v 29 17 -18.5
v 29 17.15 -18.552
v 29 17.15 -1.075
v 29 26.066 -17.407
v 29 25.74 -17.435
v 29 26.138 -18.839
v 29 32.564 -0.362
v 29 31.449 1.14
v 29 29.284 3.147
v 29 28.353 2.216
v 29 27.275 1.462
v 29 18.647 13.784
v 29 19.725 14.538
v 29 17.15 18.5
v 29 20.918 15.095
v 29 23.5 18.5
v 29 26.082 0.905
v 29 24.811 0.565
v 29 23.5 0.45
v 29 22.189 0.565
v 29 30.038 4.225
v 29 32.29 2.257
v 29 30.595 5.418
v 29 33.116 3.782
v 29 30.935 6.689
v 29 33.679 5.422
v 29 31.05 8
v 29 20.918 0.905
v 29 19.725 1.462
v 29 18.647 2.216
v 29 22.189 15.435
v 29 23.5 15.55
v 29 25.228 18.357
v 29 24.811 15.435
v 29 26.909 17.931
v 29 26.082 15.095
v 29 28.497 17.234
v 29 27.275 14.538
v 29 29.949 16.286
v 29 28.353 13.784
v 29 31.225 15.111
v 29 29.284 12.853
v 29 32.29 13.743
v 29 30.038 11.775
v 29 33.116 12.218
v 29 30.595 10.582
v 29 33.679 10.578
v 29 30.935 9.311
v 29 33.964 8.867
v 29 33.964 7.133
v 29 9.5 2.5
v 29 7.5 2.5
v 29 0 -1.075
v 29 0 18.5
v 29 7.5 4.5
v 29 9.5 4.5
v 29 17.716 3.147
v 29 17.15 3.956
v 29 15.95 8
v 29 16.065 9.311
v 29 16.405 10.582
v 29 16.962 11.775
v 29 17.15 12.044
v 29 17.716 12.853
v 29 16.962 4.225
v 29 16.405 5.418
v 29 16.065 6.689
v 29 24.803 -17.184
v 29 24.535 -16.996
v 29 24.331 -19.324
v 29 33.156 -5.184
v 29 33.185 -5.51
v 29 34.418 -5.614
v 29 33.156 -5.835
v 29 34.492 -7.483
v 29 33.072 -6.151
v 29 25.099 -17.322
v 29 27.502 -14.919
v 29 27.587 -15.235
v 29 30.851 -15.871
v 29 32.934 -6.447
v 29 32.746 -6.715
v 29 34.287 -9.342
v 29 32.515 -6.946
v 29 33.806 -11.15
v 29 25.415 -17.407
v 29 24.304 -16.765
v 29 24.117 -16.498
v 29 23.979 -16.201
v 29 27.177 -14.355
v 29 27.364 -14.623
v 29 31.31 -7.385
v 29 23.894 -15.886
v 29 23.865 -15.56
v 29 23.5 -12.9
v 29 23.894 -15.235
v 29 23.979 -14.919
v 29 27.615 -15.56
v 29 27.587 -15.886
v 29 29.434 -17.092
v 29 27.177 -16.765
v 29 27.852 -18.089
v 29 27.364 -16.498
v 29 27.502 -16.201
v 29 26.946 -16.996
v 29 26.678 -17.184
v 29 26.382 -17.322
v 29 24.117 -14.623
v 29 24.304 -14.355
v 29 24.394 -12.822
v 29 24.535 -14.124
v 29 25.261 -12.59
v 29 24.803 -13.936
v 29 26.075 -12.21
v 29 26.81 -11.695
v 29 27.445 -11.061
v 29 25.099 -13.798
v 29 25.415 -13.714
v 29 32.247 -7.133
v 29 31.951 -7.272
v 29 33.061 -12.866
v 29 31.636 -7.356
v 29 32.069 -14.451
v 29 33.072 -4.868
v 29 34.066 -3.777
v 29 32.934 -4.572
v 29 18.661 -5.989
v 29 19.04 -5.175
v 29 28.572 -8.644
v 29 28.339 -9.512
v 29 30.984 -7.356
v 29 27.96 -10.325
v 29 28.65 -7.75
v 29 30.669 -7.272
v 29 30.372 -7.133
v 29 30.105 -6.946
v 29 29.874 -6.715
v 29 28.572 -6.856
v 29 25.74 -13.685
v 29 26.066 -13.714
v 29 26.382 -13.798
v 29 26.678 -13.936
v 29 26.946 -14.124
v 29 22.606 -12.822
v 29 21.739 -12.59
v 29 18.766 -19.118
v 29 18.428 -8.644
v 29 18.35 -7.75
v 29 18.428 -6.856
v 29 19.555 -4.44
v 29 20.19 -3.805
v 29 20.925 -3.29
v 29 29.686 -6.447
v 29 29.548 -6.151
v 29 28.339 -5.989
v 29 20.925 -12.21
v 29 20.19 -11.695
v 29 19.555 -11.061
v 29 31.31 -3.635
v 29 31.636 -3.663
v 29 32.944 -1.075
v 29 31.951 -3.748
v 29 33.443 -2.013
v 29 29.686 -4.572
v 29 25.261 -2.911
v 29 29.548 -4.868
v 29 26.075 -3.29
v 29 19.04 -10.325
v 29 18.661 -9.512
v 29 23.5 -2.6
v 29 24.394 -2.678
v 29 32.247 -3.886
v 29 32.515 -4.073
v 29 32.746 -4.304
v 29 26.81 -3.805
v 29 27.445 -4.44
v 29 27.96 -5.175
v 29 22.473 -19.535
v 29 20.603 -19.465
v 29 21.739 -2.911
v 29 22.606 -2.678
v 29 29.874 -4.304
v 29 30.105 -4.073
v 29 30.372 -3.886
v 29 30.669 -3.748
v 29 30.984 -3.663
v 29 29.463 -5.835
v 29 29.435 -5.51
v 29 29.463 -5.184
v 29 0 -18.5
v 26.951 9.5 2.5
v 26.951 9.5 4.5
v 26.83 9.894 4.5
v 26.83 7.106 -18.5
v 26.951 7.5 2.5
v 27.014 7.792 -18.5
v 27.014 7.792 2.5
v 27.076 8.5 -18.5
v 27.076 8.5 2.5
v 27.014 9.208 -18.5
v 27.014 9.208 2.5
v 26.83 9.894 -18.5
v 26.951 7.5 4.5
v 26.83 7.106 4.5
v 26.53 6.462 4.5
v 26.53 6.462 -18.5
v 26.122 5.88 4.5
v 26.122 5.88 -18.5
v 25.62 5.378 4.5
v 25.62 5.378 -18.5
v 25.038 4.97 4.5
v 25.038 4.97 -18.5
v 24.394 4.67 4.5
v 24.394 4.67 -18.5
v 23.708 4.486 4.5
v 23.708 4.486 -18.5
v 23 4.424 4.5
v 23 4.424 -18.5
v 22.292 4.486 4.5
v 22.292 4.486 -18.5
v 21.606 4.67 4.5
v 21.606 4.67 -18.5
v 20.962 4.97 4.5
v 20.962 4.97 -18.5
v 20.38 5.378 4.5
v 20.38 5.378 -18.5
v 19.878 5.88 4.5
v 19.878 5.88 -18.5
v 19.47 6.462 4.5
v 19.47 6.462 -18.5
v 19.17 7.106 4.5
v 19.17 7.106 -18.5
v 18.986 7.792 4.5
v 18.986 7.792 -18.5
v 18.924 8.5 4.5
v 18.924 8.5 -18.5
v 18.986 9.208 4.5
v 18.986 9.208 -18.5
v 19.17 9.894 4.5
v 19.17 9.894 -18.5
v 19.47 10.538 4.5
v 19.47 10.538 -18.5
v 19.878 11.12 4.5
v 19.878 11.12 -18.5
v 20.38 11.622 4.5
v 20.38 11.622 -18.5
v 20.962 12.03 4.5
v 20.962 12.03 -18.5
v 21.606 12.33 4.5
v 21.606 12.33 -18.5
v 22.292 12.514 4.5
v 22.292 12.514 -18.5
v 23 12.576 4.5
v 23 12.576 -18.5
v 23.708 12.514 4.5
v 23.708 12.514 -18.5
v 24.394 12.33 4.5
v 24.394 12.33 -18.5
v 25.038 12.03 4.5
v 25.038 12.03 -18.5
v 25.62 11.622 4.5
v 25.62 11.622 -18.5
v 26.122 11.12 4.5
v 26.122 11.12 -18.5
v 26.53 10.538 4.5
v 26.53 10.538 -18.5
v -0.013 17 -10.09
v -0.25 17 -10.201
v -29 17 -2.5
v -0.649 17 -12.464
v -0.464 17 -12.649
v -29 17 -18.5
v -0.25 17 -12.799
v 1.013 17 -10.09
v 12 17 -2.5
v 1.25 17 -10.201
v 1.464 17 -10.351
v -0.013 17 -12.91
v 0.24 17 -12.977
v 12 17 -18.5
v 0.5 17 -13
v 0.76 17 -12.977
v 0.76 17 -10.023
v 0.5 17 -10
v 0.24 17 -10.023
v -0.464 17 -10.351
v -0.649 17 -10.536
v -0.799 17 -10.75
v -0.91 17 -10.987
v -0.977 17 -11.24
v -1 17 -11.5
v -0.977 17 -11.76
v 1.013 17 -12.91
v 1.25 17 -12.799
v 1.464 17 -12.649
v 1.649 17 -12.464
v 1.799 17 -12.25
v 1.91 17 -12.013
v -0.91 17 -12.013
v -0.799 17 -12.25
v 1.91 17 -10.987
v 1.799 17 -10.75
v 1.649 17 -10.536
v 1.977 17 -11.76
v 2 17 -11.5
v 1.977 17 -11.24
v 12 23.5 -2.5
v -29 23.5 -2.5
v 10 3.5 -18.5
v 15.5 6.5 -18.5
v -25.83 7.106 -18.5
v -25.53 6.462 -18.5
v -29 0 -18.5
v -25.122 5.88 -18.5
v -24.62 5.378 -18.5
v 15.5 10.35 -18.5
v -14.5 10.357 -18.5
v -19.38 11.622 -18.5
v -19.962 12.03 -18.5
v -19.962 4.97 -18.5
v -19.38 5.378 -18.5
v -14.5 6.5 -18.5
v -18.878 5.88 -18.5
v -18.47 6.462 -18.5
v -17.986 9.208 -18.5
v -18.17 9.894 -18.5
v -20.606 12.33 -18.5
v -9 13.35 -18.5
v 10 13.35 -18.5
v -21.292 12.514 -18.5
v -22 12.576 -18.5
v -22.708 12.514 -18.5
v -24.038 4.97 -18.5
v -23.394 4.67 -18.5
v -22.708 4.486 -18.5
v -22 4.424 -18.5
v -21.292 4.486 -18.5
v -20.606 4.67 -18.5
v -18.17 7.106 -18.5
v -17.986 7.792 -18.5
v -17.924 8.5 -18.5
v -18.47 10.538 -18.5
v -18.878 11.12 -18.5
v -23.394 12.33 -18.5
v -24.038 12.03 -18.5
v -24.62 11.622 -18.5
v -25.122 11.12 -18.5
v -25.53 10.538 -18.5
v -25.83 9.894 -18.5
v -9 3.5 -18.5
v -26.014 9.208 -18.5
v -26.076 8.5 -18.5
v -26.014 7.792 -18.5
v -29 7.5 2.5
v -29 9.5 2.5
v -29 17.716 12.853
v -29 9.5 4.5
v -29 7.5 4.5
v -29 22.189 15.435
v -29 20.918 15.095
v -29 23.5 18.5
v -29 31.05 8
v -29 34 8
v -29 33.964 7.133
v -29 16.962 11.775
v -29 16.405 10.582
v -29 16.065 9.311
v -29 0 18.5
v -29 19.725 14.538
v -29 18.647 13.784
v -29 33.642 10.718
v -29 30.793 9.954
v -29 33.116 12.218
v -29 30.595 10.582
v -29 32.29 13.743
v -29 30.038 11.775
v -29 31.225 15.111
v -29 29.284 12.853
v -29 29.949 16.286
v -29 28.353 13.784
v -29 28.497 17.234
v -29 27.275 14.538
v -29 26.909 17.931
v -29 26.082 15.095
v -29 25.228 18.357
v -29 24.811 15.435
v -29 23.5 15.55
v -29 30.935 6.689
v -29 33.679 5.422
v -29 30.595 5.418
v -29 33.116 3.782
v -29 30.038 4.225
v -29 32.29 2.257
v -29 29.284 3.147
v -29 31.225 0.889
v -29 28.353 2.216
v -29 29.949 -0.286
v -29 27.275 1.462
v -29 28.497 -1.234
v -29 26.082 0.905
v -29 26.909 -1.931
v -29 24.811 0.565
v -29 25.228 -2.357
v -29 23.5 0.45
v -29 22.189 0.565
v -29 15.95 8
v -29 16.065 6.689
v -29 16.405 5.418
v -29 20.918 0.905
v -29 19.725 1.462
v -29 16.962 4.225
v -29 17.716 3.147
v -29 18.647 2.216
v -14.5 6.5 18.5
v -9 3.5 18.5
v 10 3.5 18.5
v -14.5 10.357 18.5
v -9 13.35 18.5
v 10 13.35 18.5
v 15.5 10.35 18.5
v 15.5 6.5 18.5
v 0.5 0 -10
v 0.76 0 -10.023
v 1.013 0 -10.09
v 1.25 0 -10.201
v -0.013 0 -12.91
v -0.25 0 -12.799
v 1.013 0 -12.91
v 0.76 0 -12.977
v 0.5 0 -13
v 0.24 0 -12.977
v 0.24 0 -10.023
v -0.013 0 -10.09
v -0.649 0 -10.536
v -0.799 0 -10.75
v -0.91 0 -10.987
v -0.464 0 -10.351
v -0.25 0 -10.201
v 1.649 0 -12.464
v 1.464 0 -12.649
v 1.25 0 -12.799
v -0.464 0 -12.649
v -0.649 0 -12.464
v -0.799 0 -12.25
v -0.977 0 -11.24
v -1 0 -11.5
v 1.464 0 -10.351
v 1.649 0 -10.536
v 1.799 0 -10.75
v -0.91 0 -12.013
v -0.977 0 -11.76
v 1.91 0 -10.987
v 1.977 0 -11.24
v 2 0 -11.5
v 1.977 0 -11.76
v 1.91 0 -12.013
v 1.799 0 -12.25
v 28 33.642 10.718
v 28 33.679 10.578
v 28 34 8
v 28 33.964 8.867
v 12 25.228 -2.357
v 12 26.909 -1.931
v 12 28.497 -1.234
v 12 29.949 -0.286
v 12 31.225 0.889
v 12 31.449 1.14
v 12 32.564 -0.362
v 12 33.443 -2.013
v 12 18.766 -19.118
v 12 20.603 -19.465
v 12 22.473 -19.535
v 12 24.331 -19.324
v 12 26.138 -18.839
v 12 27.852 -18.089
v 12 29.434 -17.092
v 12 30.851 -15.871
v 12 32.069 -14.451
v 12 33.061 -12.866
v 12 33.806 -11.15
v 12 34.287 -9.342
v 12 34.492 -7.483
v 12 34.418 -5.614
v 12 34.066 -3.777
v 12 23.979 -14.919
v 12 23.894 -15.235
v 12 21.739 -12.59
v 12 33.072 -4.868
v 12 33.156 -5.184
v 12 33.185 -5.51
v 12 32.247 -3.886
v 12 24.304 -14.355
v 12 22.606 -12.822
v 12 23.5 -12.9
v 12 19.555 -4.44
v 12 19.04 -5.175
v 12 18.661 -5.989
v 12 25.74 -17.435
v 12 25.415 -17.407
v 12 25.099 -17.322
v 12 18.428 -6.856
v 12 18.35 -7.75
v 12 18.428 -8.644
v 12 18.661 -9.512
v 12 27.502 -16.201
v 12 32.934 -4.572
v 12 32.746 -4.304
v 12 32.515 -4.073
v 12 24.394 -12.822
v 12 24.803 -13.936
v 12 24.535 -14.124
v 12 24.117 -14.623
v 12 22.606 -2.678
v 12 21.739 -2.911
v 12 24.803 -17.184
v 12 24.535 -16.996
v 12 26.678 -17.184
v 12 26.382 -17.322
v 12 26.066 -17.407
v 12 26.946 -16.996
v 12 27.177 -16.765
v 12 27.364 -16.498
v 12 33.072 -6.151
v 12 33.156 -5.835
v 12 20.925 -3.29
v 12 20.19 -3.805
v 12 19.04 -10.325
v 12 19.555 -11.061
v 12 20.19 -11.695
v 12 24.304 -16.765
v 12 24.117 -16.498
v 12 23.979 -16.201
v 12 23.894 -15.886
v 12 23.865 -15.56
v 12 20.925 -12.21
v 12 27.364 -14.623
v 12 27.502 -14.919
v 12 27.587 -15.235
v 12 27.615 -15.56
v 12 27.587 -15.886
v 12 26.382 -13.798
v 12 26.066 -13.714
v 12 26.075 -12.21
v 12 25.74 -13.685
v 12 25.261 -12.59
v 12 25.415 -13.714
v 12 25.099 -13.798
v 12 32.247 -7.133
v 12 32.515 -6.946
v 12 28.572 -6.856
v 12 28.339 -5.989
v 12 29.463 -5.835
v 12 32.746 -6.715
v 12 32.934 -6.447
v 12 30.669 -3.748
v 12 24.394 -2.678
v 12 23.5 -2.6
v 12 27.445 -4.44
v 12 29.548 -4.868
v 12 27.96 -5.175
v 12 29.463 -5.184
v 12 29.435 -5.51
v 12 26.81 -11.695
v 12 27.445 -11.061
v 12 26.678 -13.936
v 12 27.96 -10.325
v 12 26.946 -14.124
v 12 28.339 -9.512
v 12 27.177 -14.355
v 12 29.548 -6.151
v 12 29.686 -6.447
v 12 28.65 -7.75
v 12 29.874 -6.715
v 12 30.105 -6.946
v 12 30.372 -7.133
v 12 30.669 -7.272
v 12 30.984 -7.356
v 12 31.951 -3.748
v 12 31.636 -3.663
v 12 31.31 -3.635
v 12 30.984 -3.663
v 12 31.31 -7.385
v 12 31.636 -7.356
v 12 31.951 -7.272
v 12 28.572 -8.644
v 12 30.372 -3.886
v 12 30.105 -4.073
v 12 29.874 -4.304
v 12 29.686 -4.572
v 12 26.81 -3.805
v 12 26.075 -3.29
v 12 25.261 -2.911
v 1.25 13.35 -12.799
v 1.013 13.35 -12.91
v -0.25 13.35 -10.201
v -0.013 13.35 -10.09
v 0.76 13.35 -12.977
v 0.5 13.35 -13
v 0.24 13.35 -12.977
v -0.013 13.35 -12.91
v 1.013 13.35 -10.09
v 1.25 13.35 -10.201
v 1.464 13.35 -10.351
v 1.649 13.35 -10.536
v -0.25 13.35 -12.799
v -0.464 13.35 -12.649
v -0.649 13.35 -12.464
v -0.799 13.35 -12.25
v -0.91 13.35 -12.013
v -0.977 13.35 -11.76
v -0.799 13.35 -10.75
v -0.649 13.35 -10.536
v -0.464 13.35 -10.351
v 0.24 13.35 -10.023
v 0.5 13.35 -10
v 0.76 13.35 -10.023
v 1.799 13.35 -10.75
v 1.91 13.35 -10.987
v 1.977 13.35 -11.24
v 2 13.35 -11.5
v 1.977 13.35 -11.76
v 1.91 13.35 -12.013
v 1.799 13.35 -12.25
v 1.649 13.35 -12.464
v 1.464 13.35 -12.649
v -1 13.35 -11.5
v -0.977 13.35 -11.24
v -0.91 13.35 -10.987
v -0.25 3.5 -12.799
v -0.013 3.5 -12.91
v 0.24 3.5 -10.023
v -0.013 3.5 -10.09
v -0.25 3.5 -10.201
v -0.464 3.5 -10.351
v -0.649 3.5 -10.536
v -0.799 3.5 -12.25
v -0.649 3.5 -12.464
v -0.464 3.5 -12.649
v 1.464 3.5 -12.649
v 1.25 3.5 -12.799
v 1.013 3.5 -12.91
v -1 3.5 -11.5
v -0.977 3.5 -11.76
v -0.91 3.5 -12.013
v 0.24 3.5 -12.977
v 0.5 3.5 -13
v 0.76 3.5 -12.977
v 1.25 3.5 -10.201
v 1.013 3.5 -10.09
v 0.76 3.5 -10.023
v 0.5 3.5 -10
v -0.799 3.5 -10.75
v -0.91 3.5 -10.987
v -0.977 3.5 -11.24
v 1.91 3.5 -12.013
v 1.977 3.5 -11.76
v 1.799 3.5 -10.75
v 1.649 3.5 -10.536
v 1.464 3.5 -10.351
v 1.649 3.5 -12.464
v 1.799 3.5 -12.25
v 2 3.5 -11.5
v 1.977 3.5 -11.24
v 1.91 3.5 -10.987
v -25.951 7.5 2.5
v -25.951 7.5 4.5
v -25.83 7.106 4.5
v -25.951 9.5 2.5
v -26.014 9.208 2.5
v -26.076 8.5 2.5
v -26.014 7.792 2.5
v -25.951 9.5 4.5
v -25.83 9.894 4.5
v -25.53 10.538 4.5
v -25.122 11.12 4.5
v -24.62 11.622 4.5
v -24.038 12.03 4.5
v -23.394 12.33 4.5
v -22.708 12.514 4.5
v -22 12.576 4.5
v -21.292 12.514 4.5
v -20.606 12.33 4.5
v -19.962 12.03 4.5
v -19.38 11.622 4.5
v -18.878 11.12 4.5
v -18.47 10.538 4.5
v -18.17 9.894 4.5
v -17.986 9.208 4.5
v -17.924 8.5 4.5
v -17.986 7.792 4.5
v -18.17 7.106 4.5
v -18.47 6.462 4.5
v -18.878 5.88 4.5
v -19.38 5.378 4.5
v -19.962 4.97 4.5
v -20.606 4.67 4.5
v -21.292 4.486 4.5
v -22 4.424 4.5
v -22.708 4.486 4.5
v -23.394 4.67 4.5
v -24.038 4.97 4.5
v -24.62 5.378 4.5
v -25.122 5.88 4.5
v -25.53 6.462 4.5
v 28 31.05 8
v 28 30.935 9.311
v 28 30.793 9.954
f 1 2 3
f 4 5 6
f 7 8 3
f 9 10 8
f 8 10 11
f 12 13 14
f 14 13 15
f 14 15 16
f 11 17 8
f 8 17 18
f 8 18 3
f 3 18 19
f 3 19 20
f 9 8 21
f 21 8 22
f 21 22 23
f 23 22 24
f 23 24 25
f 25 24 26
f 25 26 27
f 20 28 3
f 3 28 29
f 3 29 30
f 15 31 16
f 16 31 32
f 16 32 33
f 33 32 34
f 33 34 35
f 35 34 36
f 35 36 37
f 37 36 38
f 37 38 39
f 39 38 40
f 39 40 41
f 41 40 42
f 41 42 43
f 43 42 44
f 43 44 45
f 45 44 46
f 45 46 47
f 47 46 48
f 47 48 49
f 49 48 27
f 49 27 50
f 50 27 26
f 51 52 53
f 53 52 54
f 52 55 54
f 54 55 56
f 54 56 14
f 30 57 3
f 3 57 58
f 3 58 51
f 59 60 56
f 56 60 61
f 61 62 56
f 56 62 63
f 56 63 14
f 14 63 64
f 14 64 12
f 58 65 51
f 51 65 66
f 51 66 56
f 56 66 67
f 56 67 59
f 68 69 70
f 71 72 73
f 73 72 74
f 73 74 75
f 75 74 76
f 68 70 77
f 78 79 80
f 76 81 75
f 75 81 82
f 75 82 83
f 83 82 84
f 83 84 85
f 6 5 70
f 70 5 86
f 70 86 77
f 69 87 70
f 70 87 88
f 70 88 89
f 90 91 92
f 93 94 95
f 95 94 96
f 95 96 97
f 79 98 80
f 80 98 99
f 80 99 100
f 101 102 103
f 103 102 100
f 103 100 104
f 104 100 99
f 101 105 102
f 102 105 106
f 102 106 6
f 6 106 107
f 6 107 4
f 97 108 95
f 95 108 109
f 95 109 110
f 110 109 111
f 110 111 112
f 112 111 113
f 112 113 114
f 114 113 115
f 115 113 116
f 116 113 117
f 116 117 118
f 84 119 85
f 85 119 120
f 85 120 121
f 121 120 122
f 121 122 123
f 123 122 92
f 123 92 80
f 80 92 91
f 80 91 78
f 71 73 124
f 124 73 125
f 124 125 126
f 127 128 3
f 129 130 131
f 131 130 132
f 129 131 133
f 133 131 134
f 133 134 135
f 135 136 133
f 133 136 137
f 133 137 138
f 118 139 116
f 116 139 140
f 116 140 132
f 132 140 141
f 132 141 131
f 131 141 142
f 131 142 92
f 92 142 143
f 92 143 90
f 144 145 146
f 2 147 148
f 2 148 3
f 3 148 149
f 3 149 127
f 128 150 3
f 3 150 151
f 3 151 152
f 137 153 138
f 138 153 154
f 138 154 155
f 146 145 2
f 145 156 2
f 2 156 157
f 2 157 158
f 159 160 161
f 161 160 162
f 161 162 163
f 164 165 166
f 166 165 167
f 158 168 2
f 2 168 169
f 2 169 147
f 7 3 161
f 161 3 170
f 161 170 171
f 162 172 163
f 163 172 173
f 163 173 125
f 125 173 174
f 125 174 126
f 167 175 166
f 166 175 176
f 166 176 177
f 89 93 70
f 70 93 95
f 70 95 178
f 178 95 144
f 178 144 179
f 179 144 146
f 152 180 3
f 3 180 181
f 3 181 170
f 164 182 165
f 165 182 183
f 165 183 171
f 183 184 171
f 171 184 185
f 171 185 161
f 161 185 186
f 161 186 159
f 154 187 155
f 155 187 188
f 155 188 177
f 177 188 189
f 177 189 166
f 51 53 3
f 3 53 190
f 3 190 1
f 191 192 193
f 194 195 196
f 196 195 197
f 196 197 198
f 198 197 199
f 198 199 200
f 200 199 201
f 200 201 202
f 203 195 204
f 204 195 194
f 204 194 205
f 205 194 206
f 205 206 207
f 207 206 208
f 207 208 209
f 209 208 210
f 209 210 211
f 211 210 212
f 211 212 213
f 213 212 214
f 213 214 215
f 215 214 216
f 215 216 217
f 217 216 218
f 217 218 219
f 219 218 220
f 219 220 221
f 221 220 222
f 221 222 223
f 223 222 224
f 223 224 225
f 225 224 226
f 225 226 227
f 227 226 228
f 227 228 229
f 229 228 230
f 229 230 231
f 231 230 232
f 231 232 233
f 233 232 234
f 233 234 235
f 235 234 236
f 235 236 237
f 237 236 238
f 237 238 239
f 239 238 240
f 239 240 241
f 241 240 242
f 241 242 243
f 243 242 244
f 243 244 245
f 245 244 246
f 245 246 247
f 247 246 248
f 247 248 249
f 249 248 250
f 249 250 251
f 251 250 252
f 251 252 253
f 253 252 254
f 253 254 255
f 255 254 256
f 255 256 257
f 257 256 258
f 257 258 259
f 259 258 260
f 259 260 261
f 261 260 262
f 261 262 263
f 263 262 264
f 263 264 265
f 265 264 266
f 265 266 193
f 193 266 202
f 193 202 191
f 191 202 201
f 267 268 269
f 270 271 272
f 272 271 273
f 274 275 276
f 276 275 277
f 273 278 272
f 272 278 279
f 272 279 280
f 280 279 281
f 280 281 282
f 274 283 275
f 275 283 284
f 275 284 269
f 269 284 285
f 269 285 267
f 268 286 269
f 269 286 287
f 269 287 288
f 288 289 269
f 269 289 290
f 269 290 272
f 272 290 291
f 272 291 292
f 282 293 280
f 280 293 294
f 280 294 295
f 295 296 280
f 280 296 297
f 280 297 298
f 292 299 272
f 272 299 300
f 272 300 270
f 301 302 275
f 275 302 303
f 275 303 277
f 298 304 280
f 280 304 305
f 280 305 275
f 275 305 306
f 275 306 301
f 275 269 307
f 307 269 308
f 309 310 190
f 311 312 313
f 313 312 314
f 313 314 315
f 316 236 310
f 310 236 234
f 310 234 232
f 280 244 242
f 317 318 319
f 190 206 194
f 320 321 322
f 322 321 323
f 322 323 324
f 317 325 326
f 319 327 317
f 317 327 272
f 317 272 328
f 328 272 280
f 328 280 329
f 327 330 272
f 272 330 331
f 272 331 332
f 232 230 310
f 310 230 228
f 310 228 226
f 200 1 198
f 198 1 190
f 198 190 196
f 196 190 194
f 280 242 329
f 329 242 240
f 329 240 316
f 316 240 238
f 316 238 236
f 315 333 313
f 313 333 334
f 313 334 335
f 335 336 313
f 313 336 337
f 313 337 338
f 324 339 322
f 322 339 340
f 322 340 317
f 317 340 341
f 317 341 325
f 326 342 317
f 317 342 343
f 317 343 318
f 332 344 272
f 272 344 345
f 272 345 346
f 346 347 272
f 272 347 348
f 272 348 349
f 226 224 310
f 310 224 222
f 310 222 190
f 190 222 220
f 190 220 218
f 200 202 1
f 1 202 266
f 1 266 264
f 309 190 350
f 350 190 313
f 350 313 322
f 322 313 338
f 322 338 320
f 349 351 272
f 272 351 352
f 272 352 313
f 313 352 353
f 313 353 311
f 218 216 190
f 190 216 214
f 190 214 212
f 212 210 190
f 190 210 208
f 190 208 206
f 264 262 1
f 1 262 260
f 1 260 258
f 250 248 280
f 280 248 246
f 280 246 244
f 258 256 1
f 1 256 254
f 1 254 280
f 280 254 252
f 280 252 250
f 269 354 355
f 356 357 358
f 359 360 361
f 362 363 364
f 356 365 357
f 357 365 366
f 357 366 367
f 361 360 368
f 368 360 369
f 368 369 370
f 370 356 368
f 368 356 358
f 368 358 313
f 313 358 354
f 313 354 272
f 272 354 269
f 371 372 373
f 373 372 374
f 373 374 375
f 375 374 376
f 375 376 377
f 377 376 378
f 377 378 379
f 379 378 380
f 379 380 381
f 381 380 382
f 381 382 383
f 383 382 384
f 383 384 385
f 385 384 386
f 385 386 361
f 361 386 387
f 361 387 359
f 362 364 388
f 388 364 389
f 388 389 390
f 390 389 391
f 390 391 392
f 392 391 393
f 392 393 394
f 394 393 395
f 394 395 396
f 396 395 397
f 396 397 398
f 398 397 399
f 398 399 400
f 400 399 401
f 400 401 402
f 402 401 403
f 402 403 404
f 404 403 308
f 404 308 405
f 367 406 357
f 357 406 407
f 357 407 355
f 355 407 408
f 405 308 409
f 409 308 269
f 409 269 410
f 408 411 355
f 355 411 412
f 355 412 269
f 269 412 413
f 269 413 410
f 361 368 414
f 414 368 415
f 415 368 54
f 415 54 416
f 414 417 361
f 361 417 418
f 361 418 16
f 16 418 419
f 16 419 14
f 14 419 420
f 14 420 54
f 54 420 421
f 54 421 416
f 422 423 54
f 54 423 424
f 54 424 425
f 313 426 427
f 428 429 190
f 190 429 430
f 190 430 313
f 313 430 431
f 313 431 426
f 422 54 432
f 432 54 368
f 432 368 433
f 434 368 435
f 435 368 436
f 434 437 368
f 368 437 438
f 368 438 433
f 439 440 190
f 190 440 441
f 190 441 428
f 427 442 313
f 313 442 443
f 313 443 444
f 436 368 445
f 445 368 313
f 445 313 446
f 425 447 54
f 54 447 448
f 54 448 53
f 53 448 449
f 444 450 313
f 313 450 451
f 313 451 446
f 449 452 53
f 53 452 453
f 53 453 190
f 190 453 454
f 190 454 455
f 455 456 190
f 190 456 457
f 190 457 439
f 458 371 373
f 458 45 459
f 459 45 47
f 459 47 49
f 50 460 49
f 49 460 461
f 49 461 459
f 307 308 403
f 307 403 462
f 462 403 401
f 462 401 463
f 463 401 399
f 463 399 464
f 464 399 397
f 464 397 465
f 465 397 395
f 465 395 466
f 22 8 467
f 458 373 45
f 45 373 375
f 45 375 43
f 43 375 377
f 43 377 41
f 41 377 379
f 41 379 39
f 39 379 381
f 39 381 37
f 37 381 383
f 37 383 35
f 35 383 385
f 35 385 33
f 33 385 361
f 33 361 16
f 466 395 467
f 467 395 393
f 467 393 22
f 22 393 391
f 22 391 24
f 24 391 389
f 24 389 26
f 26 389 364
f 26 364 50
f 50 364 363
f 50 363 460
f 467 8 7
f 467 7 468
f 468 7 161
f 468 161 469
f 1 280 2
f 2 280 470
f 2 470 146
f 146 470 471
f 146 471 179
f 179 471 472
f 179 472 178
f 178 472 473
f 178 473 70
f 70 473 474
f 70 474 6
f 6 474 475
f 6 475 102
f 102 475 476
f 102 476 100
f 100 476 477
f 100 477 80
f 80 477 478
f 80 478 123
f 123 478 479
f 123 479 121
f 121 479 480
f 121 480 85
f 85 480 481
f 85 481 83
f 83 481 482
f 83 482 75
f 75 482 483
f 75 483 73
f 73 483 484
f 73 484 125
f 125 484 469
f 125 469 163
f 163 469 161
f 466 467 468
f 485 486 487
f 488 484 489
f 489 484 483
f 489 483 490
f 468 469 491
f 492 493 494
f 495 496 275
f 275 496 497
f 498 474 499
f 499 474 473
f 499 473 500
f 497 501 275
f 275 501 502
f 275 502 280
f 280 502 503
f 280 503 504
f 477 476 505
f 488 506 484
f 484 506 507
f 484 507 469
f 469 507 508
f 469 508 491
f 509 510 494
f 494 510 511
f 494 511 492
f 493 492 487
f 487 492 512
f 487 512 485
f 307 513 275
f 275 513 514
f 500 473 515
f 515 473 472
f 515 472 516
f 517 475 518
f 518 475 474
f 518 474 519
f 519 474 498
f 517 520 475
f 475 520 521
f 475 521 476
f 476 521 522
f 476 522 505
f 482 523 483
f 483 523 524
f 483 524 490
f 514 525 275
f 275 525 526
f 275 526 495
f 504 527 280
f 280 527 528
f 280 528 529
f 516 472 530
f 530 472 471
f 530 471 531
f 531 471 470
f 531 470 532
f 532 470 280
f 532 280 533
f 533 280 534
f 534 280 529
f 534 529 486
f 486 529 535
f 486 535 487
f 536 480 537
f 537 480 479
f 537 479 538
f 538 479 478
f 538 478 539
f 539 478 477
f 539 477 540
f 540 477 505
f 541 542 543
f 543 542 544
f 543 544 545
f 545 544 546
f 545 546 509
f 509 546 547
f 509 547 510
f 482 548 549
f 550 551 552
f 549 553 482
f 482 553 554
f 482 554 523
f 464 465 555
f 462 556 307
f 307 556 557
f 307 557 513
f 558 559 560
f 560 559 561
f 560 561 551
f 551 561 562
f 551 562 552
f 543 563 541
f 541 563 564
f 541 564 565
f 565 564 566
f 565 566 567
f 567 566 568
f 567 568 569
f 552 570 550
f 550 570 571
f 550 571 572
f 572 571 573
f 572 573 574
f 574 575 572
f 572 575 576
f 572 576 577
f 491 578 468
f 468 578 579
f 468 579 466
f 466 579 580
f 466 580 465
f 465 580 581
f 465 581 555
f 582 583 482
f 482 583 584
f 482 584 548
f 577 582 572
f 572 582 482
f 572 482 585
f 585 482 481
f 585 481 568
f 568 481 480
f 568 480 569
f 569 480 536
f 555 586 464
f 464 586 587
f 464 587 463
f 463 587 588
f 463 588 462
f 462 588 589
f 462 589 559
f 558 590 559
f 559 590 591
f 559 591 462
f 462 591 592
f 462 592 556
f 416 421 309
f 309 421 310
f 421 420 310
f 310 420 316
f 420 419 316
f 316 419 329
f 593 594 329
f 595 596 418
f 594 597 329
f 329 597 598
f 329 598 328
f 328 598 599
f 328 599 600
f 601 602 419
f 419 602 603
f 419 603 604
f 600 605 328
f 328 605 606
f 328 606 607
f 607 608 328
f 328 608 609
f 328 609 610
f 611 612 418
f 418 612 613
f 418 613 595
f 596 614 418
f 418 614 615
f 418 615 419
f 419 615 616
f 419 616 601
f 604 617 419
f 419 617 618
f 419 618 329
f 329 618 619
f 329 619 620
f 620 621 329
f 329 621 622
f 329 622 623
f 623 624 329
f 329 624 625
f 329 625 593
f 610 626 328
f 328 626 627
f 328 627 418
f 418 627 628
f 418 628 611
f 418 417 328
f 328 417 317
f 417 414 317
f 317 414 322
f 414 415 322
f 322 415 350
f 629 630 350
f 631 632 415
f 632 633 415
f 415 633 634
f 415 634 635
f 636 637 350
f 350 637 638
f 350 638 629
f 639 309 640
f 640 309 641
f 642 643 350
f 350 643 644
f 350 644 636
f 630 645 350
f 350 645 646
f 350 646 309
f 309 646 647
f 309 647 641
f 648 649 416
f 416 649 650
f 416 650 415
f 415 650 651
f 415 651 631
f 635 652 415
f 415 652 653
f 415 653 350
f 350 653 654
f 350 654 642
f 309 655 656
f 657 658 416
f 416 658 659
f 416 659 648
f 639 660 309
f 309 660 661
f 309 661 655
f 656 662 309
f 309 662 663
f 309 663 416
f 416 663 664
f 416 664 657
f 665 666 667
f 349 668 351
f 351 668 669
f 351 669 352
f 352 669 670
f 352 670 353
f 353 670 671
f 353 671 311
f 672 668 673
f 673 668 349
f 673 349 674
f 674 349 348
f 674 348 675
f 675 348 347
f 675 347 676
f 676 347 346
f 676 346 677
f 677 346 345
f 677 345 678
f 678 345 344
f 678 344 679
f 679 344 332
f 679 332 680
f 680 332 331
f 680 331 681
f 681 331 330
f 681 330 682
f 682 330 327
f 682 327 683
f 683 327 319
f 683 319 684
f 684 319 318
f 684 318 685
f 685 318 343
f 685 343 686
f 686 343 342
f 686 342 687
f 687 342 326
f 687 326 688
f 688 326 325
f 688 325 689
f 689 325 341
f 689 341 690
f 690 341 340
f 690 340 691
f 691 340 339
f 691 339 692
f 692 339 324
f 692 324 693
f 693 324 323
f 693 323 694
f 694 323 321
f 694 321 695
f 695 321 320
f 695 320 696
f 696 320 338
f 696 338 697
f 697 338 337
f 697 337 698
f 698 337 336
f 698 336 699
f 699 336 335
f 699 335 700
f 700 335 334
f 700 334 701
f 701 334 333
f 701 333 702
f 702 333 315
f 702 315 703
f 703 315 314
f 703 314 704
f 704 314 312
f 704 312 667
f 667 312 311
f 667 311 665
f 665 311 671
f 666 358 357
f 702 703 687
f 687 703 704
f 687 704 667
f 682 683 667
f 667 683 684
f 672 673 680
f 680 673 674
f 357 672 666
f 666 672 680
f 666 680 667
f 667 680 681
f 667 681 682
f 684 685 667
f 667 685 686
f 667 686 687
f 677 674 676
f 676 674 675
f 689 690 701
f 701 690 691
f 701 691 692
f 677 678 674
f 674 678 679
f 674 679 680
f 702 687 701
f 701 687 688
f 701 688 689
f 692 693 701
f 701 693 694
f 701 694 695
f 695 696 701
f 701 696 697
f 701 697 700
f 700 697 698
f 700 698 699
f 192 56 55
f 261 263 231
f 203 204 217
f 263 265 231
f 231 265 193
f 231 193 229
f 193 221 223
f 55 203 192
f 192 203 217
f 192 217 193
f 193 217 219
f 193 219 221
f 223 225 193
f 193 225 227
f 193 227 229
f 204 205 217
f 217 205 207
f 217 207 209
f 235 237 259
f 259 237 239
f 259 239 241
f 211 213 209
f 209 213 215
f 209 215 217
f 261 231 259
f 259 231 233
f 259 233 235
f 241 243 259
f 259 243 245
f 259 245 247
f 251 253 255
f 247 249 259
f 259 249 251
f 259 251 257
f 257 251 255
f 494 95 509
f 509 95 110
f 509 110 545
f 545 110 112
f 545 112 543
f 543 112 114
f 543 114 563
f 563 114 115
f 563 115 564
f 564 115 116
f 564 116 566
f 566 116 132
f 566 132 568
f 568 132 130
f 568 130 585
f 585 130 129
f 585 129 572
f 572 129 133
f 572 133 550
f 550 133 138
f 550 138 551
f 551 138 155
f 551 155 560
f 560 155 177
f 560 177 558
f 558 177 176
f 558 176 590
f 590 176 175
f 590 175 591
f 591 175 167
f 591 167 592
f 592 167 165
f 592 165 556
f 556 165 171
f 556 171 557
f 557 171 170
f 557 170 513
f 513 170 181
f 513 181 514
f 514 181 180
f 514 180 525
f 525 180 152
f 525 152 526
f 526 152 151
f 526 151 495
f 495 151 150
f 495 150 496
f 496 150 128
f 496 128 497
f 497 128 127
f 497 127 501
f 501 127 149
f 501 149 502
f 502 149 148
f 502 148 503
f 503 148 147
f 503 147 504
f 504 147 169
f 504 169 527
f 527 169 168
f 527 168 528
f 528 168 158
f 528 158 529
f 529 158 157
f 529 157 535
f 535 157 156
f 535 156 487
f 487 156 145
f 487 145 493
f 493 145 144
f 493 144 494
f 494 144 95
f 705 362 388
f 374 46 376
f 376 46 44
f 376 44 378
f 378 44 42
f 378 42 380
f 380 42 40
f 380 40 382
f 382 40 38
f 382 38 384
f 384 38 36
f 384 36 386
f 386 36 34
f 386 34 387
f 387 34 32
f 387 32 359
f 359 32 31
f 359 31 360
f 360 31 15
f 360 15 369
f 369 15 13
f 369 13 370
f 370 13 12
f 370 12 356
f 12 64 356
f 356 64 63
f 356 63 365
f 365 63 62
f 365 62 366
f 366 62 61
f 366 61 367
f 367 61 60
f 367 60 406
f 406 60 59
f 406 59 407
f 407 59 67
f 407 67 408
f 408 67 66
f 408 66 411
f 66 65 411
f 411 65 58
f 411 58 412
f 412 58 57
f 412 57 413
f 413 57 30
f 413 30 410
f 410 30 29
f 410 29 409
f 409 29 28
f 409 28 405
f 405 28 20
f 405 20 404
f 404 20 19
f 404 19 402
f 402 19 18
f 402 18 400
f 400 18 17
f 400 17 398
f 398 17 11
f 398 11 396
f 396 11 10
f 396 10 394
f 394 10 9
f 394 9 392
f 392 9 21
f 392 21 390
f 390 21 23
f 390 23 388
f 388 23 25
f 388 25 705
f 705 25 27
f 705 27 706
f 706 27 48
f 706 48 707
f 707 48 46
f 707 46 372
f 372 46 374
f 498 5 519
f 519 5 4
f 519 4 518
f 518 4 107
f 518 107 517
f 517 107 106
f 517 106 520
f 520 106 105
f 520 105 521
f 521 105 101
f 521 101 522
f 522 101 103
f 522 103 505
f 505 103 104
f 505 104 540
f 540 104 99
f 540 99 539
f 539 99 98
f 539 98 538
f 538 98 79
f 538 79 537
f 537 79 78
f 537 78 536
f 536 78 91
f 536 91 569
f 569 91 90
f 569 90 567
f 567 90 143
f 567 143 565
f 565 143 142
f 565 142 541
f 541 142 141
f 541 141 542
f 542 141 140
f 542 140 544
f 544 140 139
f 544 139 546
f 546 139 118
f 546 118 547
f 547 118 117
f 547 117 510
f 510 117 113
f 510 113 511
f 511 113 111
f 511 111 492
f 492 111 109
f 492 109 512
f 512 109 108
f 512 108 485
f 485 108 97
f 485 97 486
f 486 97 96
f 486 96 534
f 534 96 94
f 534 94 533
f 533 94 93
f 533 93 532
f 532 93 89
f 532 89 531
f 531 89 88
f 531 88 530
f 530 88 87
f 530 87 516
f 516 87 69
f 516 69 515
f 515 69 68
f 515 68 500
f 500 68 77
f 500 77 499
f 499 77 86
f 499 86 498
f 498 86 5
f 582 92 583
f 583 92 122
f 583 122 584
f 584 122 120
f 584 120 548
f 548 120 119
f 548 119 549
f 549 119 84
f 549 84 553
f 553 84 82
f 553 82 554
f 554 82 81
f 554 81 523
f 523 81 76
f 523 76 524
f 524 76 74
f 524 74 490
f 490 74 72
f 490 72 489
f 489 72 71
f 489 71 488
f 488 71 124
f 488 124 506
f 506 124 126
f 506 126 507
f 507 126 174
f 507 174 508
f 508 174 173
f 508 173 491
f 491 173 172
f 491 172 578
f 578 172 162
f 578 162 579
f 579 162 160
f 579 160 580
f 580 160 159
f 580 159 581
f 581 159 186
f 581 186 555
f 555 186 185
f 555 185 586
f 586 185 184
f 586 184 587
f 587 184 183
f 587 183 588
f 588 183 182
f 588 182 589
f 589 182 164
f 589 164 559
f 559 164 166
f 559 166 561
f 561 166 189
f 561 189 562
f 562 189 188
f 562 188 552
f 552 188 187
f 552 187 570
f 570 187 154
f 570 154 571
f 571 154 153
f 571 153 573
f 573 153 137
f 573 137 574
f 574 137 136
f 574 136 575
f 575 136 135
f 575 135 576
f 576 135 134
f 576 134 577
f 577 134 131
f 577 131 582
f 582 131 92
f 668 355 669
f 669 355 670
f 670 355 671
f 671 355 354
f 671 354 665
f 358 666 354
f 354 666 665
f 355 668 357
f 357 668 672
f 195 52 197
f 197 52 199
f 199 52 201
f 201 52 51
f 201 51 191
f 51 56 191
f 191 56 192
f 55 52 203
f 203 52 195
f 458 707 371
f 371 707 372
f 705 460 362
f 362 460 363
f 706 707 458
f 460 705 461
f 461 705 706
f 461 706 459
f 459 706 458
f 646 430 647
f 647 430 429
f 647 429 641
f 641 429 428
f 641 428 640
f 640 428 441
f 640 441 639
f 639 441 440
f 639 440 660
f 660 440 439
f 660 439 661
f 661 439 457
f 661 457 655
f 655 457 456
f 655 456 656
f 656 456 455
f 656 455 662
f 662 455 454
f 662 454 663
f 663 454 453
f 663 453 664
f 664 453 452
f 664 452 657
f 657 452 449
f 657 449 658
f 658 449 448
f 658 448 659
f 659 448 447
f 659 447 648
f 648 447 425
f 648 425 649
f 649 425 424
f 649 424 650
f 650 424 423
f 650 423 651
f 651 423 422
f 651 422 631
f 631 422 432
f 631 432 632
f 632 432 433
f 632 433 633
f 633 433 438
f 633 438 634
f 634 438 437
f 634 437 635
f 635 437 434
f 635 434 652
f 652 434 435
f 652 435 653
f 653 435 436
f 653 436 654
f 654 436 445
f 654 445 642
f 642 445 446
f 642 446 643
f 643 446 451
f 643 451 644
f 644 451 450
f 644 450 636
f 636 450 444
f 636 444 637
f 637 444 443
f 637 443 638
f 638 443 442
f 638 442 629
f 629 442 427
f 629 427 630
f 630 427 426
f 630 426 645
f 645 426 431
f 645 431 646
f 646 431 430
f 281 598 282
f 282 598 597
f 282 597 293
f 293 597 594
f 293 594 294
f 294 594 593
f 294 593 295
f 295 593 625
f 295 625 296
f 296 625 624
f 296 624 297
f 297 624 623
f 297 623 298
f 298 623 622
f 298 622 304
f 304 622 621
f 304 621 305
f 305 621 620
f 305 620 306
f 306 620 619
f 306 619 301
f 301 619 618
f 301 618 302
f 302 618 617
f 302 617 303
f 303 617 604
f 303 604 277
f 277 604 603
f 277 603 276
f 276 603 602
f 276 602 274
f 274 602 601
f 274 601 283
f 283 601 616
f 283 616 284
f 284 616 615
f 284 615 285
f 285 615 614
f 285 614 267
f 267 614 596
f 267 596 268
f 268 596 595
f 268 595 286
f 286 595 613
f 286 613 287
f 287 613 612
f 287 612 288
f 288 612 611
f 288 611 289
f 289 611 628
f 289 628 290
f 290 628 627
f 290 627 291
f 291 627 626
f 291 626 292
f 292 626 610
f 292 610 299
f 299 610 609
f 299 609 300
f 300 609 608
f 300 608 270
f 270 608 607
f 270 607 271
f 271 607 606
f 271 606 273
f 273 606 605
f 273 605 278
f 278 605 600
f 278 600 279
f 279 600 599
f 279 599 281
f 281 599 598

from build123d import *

# Parameters (mm, degrees)
SKETCH2_W           = 58
SKETCH2_H           = 37
BOSS_EXTRUDE1_DEPTH = 17
BOSS_EXTRUDE2_DEPTH = 58
SKETCH4_R           = 12.5
BOSS_EXTRUDE3_DEPTH = 17
CUT_EXTRUDE1_DEPTH  = 38
SKETCH6_R           = 4.076
CUT_EXTRUDE2_DEPTH  = 23
SKETCH7_R           = 7.5075
SKETCH7_R_2         = 5.15
CUT_EXTRUDE3_DEPTH  = 59
SKETCH8_R           = 1.875
CUT_EXTRUDE4_DEPTH  = 59
SKETCH12_W          = 2
SKETCH12_H          = 2
CUT_EXTRUDE6_DEPTH  = 8
CUT_EXTRUDE7_DEPTH  = 57
SKETCH14_R          = 1.5
CUT_EXTRUDE8_DEPTH  = 35.5


with BuildPart() as part:
    # Sketch2 → Boss-Extrude1 (new body)
    with BuildSketch(Plane(origin=(0, 0, 0), x_dir=(1, 0, 0), z_dir=(0, 1, 0))):
        Rectangle(SKETCH2_W, SKETCH2_H)
    extrude(amount=BOSS_EXTRUDE1_DEPTH)

    # Sketch3 → Boss-Extrude2 (add)
    with BuildSketch(Plane(origin=(29, 0, 0), x_dir=(0, 0, -1), z_dir=(1, 0, 0))):
        with BuildLine():
            Line((-18.5, 23.5), (-18.5, 17))
            Line((-18.5, 17), (2.5, 17))
            Line((2.5, 17), (2.5, 23.5))
            ThreePointArc((2.5, 23.5), (-8, 34), (-18.5, 23.5))
        make_face()
    extrude(amount=-BOSS_EXTRUDE2_DEPTH)

    # Sketch4 → Boss-Extrude3 (add)
    with BuildSketch(Plane(origin=(29, 0, 0), x_dir=(0, 0, -1), z_dir=(1, 0, 0))):
        with Locations((7.043560763, 22)):
            Circle(SKETCH4_R)
    extrude(amount=-BOSS_EXTRUDE3_DEPTH)

    # Sketch5 → Cut-Extrude1 (cut, through all)
    with BuildSketch(Plane(origin=(0, 0, -18.5), x_dir=(-1, 0, 0), z_dir=(0, 0, -1))):
        Polygon((-15.5, 6.5), (-15.5, 10.35), (-10, 13.35), (9, 13.35), (14.5, 10.357), (14.5, 6.5), (9, 3.5), (-10, 3.5), align=None)
    extrude(amount=-CUT_EXTRUDE1_DEPTH, mode=Mode.SUBTRACT)

    # Sketch6 → Cut-Extrude2 (cut)
    with BuildSketch(Plane(origin=(0, 0, -18.5), x_dir=(-1, 0, 0), z_dir=(0, 0, -1))):
        with Locations((-23, 8.5)):
            Circle(SKETCH6_R)
        with Locations((22, 8.5)):
            Circle(SKETCH6_R)
    extrude(amount=-CUT_EXTRUDE2_DEPTH, mode=Mode.SUBTRACT)

    # Sketch7 → Cut-Extrude3 (cut, through all)
    with BuildSketch(Plane(origin=(29, 0, 0), x_dir=(0, 0, -1), z_dir=(1, 0, 0))):
        with Locations((-8, 23.5)):
            Circle(SKETCH7_R)
        with Locations((7.7501439, 23.5)):
            Circle(SKETCH7_R_2)
    extrude(amount=-CUT_EXTRUDE3_DEPTH, mode=Mode.SUBTRACT)

    # Sketch8 → Cut-Extrude4 (cut, through all)
    with BuildSketch(Plane(origin=(29, 0, 0), x_dir=(0, 0, -1), z_dir=(1, 0, 0))):
        with Locations((5.509653427, 31.309982551)):
            Circle(SKETCH8_R)
        with Locations((15.560126451, 25.740490473)):
            Circle(SKETCH8_R)
    extrude(amount=-CUT_EXTRUDE4_DEPTH, mode=Mode.SUBTRACT)

    # Sketch12 → Cut-Extrude6 (cut)
    with BuildSketch(Plane.ZY.offset(29)):
        with Locations((3.5, 8.5)):
            Rectangle(SKETCH12_W, SKETCH12_H)
    cut_extrude6 = extrude(amount=-CUT_EXTRUDE6_DEPTH, mode=Mode.SUBTRACT)

    # Mirror1: Cut-Extrude6 across plane
    add(cut_extrude6.mirror(Plane(origin=(0, 0, 0), x_dir=(0, 0, 1), z_dir=(1, 0, 0))), mode=Mode.SUBTRACT)

    # Sketch13 → Cut-Extrude7 (cut)
    with BuildSketch(Plane.ZY.offset(29)):
        with BuildLine():
            ThreePointArc((8, 31.0075), (8.979925388, 30.943272297), (9.943083981, 30.751688141))
            Line((9.943083981, 30.751688141), (10.717599974, 33.642221176))
            ThreePointArc((10.717599974, 33.642221176), (9.370525018, 33.910171044), (8, 34))
            Line((8, 34), (8, 31.0075))
        make_face()
    extrude(amount=-CUT_EXTRUDE7_DEPTH, mode=Mode.SUBTRACT)

    # Sketch14 → Cut-Extrude8 (cut, through all)
    with BuildSketch(Plane.XZ):
        with Locations((0.5, -11.5)):
            Circle(SKETCH14_R)
    extrude(amount=-CUT_EXTRUDE8_DEPTH, mode=Mode.SUBTRACT)


solid = part.part
